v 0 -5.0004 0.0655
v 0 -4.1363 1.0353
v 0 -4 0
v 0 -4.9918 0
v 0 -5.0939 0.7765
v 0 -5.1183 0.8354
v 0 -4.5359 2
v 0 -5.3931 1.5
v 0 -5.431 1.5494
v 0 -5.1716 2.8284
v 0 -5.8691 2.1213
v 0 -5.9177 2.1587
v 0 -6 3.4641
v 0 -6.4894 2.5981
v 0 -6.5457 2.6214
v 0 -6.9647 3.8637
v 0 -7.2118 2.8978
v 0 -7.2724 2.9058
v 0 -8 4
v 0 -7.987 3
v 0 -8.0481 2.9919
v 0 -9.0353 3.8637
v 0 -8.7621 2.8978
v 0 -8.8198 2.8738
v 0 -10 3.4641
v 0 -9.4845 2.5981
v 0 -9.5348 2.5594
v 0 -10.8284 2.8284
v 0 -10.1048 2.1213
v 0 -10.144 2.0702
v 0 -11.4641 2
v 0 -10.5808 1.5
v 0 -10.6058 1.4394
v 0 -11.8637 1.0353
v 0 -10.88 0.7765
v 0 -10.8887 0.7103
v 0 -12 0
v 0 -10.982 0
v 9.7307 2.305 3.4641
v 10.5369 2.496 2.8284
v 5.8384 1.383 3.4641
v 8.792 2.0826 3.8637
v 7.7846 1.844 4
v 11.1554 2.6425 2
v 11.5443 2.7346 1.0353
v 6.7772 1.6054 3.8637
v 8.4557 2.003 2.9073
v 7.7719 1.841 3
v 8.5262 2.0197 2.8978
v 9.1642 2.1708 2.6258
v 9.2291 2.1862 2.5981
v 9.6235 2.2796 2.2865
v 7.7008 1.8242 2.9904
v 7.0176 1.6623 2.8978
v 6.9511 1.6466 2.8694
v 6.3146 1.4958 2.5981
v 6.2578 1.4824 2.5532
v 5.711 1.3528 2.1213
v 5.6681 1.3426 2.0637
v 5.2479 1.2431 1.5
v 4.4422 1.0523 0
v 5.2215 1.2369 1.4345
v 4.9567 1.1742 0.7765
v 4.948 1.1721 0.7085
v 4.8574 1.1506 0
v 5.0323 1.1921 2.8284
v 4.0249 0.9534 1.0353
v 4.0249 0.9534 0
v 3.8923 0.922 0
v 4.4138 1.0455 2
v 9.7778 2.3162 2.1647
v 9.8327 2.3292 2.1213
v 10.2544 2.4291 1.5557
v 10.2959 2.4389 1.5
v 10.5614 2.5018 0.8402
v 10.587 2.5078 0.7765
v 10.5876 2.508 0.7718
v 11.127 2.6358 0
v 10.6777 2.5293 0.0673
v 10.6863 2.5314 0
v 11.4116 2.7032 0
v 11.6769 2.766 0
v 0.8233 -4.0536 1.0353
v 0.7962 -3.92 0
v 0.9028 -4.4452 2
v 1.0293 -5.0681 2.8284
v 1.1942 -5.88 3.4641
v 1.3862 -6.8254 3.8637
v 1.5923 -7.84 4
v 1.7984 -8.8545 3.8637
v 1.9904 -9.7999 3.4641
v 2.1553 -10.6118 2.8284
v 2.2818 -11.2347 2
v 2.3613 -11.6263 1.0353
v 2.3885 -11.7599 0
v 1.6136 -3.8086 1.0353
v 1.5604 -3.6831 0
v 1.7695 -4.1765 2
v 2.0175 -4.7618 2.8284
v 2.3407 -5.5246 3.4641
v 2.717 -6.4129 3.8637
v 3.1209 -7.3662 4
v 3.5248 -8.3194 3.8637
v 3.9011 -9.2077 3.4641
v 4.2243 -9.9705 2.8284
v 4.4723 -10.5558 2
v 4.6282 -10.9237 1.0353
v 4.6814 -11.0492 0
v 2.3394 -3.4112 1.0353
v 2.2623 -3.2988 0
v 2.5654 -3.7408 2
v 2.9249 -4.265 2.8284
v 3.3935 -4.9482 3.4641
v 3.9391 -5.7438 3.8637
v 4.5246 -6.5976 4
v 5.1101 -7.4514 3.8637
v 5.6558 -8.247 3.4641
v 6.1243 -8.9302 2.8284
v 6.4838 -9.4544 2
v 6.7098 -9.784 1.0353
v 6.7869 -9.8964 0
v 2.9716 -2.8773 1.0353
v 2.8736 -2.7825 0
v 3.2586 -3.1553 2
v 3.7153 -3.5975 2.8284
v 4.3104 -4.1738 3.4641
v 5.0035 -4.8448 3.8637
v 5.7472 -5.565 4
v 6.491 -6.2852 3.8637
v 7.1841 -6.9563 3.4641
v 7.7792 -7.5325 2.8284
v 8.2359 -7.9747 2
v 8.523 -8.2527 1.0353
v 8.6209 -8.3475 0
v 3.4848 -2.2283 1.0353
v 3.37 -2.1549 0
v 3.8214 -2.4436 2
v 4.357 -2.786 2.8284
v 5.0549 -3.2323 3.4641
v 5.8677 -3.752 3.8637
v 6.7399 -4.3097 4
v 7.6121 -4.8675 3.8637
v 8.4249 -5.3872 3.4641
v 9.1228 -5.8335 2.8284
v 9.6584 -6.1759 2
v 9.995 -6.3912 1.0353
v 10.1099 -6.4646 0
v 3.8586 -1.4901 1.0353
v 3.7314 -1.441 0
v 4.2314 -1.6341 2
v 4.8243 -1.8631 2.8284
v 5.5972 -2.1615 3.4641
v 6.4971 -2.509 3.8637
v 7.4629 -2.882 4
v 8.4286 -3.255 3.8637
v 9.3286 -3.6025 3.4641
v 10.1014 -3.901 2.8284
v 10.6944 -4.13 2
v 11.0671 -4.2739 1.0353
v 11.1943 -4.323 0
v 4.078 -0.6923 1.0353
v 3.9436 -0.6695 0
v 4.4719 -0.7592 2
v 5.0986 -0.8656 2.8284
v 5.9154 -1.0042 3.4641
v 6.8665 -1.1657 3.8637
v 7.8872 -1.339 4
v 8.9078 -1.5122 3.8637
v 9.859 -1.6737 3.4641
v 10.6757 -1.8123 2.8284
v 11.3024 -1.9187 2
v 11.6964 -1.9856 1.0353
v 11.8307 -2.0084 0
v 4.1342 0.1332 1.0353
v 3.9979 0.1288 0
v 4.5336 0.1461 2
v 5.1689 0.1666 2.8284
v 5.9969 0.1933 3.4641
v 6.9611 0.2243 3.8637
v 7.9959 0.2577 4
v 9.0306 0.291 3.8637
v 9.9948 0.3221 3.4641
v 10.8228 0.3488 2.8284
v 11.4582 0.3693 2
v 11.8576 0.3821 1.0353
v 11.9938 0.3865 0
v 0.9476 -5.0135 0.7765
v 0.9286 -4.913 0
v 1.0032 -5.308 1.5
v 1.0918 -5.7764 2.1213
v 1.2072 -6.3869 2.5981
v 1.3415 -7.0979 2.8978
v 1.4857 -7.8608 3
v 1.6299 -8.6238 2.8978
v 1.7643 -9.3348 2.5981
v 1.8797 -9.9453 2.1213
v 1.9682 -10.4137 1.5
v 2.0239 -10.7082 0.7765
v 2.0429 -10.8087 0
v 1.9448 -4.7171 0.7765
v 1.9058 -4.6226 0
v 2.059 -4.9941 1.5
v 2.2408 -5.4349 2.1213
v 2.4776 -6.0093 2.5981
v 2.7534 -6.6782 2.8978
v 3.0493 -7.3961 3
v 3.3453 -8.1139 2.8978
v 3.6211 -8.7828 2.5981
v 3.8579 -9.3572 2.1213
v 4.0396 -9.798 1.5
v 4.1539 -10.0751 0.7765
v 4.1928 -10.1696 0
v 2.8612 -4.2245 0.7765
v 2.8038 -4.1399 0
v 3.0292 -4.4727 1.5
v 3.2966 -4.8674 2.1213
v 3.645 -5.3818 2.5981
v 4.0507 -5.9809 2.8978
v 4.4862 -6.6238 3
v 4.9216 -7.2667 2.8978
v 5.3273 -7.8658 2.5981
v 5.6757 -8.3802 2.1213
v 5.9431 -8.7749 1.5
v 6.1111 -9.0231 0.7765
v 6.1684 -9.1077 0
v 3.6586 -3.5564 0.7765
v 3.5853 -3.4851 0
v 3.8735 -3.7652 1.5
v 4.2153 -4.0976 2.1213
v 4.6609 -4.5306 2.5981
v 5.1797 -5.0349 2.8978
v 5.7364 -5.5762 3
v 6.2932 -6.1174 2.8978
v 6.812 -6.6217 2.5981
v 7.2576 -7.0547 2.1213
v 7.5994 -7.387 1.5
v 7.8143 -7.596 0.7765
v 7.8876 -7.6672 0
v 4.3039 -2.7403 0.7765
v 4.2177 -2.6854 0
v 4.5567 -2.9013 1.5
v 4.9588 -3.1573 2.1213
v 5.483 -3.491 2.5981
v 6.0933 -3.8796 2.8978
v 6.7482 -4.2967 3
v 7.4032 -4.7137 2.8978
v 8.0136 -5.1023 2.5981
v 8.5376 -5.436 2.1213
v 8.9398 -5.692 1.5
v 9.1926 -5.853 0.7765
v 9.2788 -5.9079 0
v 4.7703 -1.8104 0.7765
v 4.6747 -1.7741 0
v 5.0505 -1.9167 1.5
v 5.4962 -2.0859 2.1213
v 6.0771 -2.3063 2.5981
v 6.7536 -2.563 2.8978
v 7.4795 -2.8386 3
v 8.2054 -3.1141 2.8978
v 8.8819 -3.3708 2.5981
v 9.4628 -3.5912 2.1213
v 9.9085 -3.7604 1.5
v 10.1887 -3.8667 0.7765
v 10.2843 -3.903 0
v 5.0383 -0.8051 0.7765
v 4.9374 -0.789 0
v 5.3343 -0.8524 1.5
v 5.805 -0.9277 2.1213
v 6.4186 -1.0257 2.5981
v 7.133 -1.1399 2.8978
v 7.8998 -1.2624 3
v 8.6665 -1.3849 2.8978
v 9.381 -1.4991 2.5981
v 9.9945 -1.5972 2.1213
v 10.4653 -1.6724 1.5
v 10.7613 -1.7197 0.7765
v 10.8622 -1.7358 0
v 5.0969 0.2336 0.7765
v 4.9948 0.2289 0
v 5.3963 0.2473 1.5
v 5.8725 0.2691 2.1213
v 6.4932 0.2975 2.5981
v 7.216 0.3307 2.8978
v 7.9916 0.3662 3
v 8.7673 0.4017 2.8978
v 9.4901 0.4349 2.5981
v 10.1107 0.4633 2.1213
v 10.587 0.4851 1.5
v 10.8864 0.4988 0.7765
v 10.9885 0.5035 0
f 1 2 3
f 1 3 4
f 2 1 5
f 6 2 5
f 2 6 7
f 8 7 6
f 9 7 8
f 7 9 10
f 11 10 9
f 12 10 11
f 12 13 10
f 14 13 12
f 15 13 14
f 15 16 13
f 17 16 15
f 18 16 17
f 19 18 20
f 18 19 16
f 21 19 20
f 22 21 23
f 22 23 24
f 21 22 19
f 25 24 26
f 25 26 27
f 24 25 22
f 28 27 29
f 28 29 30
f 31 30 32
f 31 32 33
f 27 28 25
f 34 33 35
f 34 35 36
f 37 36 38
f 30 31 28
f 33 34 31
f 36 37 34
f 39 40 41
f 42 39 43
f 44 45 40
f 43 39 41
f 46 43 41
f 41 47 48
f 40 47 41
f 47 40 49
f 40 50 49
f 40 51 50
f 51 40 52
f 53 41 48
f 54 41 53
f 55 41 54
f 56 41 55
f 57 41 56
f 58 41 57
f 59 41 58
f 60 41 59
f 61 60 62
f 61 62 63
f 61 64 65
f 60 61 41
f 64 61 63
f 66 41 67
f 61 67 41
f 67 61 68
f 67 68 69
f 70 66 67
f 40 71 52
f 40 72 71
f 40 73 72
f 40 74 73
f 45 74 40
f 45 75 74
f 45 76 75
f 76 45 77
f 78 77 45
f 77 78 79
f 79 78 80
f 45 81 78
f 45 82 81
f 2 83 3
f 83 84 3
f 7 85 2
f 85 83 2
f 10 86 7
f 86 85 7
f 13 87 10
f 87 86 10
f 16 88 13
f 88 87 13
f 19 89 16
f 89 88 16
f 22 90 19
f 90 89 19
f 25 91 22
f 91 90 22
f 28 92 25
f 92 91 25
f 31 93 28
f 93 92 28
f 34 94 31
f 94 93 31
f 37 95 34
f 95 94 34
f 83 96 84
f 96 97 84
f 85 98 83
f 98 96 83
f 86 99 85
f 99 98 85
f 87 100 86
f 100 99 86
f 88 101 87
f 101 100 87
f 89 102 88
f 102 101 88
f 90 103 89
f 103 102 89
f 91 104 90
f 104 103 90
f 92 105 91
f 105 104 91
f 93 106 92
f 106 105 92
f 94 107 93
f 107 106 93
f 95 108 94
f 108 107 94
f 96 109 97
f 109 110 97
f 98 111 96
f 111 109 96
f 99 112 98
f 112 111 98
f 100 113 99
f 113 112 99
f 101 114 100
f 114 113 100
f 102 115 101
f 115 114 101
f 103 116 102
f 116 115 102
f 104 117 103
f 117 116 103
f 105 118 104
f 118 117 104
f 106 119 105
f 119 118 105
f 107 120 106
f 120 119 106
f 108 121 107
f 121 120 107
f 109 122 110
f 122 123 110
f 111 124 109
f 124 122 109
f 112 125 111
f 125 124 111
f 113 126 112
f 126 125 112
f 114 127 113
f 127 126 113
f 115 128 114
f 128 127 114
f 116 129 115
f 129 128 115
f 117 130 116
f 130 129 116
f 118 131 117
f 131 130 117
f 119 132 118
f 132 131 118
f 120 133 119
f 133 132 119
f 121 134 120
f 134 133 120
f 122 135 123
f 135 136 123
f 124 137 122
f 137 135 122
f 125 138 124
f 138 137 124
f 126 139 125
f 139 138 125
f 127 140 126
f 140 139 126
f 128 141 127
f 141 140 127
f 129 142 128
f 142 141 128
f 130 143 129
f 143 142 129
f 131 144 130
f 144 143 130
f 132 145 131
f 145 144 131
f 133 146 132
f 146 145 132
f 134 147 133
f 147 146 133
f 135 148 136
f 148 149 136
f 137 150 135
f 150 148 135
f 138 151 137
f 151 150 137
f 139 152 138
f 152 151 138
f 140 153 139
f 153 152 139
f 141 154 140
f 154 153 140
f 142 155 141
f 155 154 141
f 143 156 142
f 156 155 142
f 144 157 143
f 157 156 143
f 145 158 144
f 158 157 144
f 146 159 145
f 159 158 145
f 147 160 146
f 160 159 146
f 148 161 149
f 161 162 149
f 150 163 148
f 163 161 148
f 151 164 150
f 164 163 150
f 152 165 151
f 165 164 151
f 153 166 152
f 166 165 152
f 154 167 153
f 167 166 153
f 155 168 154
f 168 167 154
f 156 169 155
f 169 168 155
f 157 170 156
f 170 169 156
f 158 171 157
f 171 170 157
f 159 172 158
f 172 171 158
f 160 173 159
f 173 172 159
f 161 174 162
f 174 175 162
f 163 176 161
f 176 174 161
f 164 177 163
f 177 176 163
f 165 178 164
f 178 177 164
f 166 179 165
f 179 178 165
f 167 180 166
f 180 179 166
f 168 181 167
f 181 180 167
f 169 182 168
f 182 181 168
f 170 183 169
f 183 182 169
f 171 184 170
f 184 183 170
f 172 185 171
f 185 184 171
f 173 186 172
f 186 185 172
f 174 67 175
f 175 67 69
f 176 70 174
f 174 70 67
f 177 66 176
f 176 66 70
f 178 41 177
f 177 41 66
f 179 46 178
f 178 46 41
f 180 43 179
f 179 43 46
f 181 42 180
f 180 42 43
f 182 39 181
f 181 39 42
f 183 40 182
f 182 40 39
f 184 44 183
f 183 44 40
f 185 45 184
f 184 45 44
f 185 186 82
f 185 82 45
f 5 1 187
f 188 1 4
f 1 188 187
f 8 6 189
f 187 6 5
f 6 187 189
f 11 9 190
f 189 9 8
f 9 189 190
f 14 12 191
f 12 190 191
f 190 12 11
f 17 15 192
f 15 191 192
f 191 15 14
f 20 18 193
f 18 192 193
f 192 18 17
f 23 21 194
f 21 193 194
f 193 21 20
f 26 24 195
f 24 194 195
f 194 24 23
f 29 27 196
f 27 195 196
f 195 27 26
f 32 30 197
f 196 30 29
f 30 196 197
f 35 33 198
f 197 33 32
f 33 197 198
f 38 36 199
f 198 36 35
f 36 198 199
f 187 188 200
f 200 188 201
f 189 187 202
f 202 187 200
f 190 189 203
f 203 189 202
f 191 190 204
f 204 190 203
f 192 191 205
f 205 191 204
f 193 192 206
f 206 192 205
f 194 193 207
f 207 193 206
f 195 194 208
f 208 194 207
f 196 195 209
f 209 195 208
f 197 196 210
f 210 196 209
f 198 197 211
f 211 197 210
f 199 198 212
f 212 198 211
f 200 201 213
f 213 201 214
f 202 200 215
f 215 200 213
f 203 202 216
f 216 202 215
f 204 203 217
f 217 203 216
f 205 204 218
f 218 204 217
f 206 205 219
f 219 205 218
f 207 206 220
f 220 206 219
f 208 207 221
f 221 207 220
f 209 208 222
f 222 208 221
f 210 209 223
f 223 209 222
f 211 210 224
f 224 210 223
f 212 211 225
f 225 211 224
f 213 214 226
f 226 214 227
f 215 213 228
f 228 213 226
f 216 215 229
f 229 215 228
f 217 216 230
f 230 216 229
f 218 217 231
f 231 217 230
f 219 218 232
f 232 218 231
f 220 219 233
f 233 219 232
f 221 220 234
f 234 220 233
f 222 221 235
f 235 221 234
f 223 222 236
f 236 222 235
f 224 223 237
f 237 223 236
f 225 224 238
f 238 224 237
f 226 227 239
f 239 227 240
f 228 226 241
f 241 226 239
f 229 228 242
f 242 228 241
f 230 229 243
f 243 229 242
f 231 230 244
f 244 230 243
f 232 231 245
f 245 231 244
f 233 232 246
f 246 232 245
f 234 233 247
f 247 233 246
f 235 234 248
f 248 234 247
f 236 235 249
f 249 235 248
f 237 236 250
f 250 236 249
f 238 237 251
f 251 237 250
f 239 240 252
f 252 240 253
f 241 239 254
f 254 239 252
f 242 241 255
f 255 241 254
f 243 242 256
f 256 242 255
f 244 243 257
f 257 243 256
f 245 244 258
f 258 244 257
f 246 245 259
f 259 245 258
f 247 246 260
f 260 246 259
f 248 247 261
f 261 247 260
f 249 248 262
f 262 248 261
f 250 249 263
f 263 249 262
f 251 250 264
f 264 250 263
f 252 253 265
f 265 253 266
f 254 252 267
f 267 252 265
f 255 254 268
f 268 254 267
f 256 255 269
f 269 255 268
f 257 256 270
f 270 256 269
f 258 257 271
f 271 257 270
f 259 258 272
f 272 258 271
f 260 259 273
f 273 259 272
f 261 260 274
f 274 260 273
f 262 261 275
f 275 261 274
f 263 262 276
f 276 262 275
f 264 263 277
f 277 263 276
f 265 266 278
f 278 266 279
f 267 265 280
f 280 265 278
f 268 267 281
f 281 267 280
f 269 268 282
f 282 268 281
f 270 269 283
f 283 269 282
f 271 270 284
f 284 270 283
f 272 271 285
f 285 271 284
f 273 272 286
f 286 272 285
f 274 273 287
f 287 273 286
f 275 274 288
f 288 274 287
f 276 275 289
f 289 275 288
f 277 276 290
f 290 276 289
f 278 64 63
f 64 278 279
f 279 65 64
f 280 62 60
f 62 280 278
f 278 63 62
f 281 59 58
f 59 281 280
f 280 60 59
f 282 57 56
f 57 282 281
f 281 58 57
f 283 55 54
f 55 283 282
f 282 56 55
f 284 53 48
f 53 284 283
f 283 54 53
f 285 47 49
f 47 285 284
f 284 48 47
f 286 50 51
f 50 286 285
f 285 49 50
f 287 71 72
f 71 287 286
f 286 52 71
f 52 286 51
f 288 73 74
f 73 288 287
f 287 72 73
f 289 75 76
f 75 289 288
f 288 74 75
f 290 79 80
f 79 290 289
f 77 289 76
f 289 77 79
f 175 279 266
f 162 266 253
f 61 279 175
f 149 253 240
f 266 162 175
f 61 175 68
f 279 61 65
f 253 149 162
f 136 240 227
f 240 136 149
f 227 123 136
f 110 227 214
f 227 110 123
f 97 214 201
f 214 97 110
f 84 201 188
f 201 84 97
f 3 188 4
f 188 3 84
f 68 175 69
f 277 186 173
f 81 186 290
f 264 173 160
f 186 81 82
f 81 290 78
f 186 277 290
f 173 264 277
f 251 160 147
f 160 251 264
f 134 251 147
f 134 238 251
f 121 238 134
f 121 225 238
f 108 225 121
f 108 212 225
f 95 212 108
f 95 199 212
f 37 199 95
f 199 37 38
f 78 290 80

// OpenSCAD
// file: ../build_environments.scad
// build_environments.scad: modules to build level sections
//

module pool(diameter=10.0, wall_height=2.0, step_width=3.0, connections=[])
{
    difference() {
        union() {
        difference() {
            cylinder(h=0.5,r1=diameter+step_width,r2=diameter+step_width,$fn=48);
            translate([0,0,-0.1])
                cylinder(h=0.7,r1=diameter,r2=diameter,$fn=48);
        }
        difference() {
            cylinder(h=wall_height,r1=diameter+step_width+1.0,r2=diameter+step_width+1.0,$fn=48);
            translate([0,0,-0.1])
                cylinder(h=wall_height+0.2,r1=diameter+step_width,r2=diameter+step_width,$fn=48);
        }
        }
    
        for (c = connections)
        {
            rotate([0,90,0]) {
                angle = atan2(c[1],c[0]);
                rotate([-angle,0,0]) {
                    cylinder(h=diameter+5.0,r1=c[2],r2=c[2],$fn=48);
                }
            }
        }
    }
}

module straight(length=10.0, width=2.0, dy1=0.0, dy2=0.0, dz=0.0)
{
    dims = [0, 0, 0, 0, 0, (dz/length)];
    matrix = [
        [ 1, dims[0], dims[1], 0 ],
        [ dims[2], 1, dims[4], 0 ],
        [ dims[5], dims[3], 1, 0 ],
        [ 0, 0, 0, 1 ]
    ];
    multmatrix(matrix)
    difference() {
        translate([dy1,0,0])
        union() {
            rotate([0,90,0]) {
                difference() {
                    cylinder(h=(length-dy1-dy2),r1=width+1.0,r2=width+1.0,$fn=24);
                    translate([0,0,-0.1])
                        cylinder(h=(length-dy1-dy2+0.2),r1=width,r2=width,$fn=24);
                }
                difference() {
                    cylinder(h=1.0,r1=width+2.0,r2=width+2.0,$fn=24);
                    translate([0,0,-0.1])
                        cylinder(h=1.2,r1=width,r2=width,$fn=24);
                }
                translate([0,0,(length-dy1-dy2)-1.0]) {
                    difference() {
                        cylinder(h=1.0,r1=width+2.0,r2=width+2.0,$fn=24);
                        translate([0,0,-0.1])
                            cylinder(h=1.2,r1=width,r2=width,$fn=24);
                    }
                }
            }
        }
        translate([0,0,-(2*width+4.0)/2])
            cube([3*length,3*length,2*width+4.0],center=true);
    }
}

module curve(p0=[0,0], center=[0,0], dir=1, angle=0.0, width=2.0)
{
    radius = sqrt((p0[0]-center[0])*(p0[0]-center[0]) + (p0[1]-center[1])*(p0[1]-center[1]));
    if (dir == 0) {
        difference() {
            rotate([0,0,-90])
            difference() {
                rotate_extrude(angle = angle, convexity = 10, $fn=32)
                    translate([radius, 0, 0])
                        circle(r = width+1.0,$fn=24);
                rotate([0,0,-1.0])
                    rotate_extrude(angle = angle+2.0, convexity = 10, $fn=32)
                        translate([radius, 0, 0])
                            circle(r = width,$fn=24);
            }
            translate([0,0,-(2*width+4.0)/2])
                cube([5*radius,5*radius,2*width+4.0],center=true);
        }
    }
    else {
        difference() {
            rotate([0,0,90])
            difference() {
                rotate_extrude(angle = -angle, convexity = 10, $fn=32)
                    translate([radius, 0, 0])
                        circle(r = width+1.0,$fn=24);
                rotate([0,0,1.0])
                    rotate_extrude(angle = -angle-2.0, convexity = 10, $fn=32)
                        translate([radius, 0, 0])
                            circle(r = width,$fn=24);
            }
            translate([0,0,-(2*width+4.0)/2])
                cube([5*radius,5*radius,2*width+4.0],center=true);
        }
    }

}

// test pool
//pool(diameter=12.0000, wall_height=3.0000, step_width=3.0000, connections=[[0.0000,-26.0000,2.0000], [23.6074,0.0000,2.0000]]);

// test straight, slope
//straight(length=26.0000, width=2.0000, dy1=11.8322, dy2=6.7082, dz=0.0000);
//straight(length=29.1549, width=12.0000, dy1=0.0000, dy2=0.0000, dz=-15.0000);

// test curve
//curve(p0=[23.6074, 0.0000], center=[23.6074, 5.0000], dir=0, angle=60.1011, width=2.0000);
//curve(p0=[33.6426, 12.4219], center=[37.9771, 9.9295], dir=1, angle=120.4627, width=2.0000);
// main file
use <../build_environments.scad>;
curve(p0=[2.3899, -40.5765], center=[9.7431, -37.4252], dir=0, angle=103.3266, width=3.0000);
